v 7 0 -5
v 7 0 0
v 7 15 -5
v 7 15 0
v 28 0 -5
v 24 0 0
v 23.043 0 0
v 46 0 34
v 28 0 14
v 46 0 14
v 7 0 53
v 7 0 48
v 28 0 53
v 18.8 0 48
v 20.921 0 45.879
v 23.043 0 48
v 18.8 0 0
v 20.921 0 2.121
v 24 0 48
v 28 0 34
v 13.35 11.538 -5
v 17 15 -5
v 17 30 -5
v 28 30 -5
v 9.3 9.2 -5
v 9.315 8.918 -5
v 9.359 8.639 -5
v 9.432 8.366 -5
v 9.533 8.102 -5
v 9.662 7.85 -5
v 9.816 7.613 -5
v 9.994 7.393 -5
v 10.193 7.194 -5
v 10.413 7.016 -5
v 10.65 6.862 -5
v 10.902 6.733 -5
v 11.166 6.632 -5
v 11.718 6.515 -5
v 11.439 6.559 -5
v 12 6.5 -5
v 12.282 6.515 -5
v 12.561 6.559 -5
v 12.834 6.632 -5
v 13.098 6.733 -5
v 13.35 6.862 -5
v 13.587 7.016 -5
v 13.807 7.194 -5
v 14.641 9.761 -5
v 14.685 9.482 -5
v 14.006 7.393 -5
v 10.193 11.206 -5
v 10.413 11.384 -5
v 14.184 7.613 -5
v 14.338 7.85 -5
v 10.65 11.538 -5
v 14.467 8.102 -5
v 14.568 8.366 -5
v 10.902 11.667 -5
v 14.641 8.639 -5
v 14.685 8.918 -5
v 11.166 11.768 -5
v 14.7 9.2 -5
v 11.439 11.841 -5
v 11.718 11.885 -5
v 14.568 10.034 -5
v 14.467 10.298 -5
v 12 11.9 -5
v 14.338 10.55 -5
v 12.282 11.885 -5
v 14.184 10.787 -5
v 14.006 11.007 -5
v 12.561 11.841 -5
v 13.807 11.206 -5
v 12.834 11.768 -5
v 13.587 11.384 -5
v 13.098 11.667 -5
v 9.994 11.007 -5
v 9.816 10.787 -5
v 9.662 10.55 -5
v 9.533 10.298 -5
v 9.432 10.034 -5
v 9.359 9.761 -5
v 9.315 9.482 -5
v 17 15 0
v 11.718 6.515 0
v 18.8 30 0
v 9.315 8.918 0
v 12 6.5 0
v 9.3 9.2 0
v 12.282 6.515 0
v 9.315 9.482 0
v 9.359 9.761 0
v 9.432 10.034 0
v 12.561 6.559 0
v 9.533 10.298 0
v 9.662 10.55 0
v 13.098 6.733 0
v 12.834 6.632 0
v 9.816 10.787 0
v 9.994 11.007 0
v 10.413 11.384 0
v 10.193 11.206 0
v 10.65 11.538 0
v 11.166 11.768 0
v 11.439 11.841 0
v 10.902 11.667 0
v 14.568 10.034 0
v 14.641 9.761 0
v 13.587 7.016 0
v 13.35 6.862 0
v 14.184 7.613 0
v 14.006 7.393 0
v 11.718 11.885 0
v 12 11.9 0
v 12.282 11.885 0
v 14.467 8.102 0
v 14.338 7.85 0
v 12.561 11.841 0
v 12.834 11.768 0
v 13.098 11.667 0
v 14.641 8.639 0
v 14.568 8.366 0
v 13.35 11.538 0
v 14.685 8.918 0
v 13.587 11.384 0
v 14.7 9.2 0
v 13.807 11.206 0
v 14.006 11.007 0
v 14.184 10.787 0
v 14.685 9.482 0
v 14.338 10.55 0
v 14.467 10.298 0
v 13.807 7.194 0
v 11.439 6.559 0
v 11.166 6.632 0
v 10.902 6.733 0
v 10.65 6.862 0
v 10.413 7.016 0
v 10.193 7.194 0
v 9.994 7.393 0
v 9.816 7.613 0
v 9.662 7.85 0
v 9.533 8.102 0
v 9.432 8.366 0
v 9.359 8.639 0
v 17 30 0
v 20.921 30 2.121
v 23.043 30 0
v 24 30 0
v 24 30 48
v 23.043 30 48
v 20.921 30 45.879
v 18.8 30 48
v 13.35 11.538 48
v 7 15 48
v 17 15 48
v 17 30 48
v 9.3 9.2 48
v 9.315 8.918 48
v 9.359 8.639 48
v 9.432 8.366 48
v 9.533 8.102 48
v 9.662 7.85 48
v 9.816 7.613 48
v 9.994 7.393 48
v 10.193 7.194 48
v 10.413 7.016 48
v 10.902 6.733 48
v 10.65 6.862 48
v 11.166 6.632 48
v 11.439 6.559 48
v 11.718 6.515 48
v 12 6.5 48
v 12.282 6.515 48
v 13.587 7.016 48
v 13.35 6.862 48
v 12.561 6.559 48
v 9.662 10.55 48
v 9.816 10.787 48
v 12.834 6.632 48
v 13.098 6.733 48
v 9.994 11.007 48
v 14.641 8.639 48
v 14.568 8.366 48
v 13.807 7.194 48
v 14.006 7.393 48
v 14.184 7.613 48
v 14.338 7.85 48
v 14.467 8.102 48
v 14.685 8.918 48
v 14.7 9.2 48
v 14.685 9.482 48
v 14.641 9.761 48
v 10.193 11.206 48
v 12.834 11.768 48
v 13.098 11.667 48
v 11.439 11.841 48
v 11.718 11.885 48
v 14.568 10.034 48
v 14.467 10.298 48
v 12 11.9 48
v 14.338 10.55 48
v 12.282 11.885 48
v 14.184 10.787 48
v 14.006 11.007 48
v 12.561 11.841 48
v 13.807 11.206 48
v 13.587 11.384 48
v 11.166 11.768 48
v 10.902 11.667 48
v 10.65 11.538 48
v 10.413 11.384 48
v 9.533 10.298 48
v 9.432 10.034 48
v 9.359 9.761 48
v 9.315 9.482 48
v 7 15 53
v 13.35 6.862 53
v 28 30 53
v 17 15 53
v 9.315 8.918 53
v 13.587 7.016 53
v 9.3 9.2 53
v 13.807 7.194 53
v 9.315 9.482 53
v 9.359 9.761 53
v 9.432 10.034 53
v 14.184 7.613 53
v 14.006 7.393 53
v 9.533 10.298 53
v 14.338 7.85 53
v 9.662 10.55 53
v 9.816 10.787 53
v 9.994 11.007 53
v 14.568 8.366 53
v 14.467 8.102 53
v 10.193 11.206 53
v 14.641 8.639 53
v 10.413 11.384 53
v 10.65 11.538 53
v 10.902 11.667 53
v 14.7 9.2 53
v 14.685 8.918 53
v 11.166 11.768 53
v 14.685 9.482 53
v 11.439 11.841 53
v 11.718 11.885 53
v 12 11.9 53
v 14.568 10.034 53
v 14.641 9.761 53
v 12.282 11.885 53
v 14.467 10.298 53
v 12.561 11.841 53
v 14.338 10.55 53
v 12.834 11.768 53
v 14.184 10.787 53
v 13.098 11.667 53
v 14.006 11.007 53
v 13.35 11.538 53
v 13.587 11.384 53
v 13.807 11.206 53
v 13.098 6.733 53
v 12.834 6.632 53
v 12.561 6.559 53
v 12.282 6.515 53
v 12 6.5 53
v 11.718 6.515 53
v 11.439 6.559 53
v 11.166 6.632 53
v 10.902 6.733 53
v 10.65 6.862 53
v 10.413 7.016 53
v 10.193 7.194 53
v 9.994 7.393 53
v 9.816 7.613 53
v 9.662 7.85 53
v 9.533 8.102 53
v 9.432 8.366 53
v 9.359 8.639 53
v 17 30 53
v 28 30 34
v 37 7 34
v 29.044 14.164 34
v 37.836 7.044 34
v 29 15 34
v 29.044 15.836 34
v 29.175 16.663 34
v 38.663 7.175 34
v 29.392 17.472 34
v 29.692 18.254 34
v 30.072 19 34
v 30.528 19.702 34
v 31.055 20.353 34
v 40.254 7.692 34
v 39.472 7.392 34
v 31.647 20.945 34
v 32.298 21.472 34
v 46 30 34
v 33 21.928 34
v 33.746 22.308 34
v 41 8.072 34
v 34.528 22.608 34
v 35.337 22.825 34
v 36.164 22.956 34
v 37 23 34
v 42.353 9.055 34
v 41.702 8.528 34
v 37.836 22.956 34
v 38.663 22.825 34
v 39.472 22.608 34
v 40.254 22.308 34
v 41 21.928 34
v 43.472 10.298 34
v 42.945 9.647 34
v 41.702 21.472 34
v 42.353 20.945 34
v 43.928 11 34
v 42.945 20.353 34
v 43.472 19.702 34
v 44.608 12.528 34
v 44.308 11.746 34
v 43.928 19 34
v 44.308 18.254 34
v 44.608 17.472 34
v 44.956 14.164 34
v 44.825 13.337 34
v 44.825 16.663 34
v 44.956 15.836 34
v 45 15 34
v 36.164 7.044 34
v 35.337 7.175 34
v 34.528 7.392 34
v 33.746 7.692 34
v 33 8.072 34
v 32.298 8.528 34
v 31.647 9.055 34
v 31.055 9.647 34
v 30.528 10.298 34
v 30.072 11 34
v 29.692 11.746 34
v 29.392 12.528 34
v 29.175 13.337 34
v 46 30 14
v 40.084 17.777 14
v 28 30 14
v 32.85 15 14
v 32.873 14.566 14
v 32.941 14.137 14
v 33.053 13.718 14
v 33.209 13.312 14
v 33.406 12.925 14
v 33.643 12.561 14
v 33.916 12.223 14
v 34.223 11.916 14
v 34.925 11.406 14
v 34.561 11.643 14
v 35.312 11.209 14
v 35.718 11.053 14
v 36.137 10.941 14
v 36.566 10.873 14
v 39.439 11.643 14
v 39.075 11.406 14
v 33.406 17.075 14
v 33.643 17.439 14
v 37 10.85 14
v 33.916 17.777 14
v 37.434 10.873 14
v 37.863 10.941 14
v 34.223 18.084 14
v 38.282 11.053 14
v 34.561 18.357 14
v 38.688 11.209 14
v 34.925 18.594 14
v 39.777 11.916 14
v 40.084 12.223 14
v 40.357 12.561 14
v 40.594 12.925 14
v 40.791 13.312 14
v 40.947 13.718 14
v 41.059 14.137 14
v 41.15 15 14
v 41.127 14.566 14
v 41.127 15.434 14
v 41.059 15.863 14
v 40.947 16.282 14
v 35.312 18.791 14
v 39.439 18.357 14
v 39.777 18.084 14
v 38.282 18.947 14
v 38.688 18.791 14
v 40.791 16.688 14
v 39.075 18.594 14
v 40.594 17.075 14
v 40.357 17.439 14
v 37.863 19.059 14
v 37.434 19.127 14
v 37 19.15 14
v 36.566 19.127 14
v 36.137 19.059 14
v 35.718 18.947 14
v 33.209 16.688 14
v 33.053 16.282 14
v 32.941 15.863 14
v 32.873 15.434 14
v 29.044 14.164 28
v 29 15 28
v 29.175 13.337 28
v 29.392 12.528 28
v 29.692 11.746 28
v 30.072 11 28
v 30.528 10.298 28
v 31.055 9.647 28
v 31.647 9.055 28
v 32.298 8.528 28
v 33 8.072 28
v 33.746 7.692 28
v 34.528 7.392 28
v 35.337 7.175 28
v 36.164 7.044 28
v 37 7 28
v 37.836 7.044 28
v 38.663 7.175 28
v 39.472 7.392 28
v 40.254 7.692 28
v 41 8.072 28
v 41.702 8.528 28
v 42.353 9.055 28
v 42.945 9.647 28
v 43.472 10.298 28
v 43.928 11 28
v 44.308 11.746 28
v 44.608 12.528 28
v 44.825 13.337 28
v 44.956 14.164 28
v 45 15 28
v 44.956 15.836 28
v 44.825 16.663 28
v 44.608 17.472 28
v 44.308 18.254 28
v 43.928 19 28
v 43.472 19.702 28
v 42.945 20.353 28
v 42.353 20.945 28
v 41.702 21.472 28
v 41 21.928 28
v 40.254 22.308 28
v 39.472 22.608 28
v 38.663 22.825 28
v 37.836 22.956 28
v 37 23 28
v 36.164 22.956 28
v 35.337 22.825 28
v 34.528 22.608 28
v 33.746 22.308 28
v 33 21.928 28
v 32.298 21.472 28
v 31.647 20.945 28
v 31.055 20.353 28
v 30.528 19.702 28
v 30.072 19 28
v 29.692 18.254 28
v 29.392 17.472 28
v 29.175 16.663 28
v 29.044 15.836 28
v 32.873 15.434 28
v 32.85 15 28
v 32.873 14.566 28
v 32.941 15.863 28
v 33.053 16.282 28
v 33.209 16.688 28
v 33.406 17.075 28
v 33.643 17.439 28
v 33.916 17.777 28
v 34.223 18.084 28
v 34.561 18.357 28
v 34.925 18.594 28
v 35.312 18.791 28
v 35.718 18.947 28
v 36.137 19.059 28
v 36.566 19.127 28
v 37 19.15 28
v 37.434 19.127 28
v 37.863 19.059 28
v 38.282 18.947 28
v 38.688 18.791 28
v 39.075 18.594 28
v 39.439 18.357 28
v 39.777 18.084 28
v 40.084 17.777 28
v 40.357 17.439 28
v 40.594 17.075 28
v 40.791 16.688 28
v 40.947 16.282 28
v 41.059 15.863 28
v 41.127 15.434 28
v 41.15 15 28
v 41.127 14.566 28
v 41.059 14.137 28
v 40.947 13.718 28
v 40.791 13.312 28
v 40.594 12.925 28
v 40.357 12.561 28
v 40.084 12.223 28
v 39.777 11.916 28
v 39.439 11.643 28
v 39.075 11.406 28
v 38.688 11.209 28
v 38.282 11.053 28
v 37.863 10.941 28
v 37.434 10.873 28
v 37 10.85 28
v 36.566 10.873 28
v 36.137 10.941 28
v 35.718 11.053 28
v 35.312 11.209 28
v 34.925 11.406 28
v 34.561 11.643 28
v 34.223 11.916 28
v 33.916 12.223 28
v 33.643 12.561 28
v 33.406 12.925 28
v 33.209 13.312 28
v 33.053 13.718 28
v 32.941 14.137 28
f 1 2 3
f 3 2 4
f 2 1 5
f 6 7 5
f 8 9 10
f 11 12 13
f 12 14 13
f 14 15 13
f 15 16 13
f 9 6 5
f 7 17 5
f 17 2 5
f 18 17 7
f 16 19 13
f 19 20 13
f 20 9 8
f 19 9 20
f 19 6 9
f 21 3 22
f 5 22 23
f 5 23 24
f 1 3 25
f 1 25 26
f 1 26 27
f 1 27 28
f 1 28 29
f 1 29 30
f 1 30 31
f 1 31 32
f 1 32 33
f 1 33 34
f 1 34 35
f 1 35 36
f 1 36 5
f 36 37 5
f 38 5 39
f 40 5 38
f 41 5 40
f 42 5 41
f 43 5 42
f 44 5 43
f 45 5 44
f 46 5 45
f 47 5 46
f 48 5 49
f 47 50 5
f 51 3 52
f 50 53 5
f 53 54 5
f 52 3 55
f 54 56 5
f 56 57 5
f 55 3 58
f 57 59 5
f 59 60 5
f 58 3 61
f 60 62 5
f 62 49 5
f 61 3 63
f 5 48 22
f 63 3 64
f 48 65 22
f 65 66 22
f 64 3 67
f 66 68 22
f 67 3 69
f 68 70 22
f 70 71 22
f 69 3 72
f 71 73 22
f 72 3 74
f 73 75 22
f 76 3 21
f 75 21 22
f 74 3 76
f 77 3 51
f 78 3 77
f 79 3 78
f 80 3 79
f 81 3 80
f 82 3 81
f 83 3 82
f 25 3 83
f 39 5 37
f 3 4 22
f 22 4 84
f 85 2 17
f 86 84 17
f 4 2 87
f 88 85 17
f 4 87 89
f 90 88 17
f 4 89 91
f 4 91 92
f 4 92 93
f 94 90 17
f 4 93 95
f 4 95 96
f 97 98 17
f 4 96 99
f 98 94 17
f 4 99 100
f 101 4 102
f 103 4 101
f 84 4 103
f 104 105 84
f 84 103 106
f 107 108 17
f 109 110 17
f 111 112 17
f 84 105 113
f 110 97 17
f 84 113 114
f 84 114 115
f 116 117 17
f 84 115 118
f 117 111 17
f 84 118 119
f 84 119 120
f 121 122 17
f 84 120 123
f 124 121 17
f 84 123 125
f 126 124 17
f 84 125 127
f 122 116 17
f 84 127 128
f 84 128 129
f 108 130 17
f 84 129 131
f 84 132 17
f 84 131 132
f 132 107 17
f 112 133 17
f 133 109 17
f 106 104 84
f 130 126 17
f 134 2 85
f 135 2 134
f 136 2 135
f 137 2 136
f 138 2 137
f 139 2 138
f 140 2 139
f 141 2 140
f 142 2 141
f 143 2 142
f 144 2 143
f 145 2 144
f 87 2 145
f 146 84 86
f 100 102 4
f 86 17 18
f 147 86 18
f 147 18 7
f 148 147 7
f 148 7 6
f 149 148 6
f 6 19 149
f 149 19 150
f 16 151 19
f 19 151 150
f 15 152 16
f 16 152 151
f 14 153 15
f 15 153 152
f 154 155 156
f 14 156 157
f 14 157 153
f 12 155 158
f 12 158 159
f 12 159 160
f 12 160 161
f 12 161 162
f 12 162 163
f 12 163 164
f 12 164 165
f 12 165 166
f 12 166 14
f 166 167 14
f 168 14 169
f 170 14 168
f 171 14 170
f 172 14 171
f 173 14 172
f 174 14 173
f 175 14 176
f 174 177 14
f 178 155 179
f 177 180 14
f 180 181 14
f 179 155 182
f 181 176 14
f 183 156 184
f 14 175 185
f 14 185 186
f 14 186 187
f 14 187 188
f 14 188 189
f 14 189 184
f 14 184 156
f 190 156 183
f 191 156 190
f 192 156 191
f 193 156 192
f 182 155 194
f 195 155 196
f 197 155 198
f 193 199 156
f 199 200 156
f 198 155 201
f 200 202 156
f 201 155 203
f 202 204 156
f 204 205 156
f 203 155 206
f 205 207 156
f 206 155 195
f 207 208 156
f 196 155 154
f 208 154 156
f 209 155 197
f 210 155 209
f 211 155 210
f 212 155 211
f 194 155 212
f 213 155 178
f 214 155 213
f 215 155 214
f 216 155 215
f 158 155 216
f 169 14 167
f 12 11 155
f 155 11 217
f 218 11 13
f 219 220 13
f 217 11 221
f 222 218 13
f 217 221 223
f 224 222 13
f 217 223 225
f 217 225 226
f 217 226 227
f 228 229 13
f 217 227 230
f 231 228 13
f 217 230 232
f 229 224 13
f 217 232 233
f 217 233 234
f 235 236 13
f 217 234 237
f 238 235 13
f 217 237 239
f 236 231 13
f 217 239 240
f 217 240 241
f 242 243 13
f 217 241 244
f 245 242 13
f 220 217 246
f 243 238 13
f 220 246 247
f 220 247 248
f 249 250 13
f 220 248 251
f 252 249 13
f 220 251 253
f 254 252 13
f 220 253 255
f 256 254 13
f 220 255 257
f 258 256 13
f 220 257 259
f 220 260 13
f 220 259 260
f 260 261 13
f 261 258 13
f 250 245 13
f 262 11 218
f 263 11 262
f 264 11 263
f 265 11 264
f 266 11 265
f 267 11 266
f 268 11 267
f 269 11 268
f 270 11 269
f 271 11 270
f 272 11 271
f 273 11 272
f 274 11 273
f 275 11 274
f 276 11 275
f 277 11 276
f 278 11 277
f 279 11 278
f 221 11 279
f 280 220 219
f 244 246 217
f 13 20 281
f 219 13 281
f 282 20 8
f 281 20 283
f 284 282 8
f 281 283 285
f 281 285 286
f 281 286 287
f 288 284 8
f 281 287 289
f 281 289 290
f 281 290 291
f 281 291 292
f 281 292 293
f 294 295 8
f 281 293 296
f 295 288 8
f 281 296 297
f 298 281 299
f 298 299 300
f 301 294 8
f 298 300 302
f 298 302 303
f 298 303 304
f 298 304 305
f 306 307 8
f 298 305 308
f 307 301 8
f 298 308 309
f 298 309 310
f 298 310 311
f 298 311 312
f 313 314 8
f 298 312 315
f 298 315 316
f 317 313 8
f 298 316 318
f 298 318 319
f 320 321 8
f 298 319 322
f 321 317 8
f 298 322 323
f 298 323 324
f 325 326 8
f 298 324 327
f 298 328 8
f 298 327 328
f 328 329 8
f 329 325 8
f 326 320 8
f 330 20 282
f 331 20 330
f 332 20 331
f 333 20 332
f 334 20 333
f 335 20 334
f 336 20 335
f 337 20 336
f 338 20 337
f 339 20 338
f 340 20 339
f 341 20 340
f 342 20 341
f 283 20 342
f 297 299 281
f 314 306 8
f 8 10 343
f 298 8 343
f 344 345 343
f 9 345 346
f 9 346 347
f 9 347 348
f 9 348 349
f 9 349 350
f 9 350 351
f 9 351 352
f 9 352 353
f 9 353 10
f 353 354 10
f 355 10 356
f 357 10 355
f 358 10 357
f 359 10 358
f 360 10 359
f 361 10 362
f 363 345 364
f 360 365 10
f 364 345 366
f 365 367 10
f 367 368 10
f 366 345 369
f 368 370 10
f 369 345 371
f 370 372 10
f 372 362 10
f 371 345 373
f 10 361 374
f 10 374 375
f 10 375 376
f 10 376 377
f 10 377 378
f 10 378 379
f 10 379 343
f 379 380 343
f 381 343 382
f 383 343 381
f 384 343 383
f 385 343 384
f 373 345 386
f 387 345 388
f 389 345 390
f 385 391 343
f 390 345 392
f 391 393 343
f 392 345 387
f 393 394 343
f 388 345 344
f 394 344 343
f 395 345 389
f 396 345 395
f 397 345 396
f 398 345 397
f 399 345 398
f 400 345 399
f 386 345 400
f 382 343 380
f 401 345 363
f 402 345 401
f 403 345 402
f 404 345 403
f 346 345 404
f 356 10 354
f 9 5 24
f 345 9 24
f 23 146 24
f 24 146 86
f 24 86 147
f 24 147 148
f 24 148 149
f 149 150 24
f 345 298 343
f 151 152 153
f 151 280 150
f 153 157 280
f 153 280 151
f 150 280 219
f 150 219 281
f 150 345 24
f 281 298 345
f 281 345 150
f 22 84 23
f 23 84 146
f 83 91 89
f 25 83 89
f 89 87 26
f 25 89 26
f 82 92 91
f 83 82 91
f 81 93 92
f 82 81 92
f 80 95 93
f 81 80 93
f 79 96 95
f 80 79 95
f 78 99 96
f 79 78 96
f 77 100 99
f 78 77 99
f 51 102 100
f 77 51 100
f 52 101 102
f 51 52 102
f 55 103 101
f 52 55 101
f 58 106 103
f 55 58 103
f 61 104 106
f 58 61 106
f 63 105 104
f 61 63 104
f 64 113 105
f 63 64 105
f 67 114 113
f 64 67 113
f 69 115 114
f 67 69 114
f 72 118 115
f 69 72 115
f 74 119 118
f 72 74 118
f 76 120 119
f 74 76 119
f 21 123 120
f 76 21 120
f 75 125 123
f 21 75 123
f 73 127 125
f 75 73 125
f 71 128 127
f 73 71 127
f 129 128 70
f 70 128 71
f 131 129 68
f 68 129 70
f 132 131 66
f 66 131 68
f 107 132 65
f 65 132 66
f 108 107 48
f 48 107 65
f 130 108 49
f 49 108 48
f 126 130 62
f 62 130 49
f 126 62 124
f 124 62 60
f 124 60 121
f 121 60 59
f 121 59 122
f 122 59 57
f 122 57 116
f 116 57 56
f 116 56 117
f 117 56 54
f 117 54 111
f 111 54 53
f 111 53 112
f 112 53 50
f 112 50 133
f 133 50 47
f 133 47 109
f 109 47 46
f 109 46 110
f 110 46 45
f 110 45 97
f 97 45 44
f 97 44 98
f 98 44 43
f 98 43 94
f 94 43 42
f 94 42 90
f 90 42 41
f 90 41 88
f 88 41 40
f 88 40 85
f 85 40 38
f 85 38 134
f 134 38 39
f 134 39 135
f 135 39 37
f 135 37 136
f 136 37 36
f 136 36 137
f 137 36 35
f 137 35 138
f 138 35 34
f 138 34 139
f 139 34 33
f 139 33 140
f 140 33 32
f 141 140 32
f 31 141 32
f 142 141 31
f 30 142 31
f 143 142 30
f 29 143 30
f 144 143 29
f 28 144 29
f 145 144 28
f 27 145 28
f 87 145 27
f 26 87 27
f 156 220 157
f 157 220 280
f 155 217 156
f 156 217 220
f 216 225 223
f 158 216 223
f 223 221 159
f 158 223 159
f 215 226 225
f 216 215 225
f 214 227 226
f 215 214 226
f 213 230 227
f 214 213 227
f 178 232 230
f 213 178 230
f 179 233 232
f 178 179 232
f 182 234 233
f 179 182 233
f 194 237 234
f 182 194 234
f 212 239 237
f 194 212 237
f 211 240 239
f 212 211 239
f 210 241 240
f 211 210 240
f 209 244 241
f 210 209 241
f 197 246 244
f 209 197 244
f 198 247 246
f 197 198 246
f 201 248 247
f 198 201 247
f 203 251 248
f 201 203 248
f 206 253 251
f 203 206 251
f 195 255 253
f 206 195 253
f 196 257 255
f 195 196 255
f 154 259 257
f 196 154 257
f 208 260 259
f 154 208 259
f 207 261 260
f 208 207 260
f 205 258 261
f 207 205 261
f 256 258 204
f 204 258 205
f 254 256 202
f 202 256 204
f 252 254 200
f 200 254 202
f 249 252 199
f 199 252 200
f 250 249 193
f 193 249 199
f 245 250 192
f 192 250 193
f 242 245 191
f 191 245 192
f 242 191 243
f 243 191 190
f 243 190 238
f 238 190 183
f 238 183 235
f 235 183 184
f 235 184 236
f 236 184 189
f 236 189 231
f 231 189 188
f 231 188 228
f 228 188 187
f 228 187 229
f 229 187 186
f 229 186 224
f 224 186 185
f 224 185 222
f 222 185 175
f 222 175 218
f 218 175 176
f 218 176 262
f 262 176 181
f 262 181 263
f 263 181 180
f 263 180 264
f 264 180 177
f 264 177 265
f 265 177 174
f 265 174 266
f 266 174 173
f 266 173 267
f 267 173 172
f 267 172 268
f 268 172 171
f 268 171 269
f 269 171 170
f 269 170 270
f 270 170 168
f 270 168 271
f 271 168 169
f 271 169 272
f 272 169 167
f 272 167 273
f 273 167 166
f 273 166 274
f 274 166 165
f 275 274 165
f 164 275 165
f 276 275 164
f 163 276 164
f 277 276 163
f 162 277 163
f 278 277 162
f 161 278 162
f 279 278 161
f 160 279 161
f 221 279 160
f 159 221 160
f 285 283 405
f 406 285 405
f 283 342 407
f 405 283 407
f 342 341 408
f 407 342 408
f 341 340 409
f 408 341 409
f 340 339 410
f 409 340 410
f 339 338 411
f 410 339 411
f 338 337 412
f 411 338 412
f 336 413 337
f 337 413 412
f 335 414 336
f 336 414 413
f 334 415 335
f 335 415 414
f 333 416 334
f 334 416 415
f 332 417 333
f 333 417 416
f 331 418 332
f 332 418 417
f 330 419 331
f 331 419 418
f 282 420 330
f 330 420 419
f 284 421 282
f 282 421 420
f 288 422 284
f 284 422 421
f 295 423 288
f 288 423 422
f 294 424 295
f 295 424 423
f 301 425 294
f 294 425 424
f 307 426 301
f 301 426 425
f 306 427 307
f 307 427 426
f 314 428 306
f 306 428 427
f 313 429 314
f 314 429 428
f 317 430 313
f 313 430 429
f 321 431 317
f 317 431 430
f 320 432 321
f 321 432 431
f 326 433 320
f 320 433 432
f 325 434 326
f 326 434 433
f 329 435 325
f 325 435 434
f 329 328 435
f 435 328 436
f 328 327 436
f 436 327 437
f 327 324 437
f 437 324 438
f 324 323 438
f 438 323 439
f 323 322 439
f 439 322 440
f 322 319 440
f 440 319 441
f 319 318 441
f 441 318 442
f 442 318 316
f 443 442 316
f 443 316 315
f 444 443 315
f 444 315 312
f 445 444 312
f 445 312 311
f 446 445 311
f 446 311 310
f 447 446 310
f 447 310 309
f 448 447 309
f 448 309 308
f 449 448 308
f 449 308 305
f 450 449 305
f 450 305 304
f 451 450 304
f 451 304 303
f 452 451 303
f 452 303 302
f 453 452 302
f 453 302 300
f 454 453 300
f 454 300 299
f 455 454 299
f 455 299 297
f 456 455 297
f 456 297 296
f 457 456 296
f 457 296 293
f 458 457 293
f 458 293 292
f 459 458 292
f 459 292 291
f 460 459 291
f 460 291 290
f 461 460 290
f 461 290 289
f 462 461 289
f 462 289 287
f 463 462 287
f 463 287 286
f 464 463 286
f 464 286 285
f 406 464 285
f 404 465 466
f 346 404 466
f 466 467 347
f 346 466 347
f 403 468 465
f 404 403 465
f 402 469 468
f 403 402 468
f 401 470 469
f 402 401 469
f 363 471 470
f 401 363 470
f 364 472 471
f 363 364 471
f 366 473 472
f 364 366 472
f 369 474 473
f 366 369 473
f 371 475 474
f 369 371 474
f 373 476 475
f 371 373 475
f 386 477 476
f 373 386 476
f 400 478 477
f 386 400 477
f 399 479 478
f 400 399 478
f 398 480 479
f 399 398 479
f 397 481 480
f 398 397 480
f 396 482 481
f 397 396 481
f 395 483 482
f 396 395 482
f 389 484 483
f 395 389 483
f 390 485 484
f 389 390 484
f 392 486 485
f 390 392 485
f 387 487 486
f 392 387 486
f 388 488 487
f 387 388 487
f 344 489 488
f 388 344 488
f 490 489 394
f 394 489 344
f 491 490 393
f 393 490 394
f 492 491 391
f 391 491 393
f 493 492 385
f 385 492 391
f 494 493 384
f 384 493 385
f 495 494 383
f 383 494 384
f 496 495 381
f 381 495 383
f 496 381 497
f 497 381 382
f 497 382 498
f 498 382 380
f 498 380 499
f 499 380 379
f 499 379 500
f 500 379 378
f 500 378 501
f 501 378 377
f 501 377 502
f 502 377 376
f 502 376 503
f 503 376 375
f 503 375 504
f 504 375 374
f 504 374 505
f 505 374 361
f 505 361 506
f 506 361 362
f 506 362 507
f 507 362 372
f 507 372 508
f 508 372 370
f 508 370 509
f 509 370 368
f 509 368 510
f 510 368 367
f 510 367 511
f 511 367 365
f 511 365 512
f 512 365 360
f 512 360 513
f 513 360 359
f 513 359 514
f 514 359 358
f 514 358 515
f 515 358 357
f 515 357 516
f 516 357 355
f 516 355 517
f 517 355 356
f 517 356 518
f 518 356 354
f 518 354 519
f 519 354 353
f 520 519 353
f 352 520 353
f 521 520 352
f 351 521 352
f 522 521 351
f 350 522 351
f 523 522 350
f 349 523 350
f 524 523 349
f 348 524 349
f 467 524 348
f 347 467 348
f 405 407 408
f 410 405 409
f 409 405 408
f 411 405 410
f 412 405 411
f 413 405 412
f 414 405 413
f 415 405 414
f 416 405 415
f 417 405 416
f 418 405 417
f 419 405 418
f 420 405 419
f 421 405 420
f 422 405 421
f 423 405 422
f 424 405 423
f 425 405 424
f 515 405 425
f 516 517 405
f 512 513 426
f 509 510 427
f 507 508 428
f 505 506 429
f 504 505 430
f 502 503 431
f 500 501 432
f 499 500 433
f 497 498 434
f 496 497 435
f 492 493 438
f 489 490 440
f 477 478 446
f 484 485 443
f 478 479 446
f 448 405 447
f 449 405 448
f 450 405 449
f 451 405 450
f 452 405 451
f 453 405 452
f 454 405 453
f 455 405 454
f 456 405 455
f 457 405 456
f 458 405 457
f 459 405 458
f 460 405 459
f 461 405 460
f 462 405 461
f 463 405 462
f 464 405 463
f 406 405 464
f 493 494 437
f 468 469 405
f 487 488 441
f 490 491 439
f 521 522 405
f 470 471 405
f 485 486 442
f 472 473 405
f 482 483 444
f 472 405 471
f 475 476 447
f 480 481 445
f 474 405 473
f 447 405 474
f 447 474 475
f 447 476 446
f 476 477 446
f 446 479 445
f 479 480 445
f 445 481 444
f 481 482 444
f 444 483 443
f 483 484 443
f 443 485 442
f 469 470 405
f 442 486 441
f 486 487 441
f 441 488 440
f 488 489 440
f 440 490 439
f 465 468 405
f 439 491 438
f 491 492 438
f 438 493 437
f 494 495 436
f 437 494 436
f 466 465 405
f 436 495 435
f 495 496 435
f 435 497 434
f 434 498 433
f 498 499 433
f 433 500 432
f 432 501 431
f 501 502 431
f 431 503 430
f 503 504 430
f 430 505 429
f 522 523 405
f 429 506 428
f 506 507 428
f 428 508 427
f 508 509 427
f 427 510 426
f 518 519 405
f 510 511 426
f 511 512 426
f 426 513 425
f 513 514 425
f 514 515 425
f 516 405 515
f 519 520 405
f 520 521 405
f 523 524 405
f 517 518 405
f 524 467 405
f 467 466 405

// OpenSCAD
x = 24;		// Height body
y = 30;		// Height body
z = 48;		// Height body
s1x = 5;	// Height body
s1z = 9;	// Height body

s2z = 12;

r1 = 4.15;	// Radio varilla lisa
r2 = 2.3;	// Radio tornillo M3
r3 = 11.2;	// Radio centro motor
r4 = 3;		// Radio tornillo M5
r5 = 7.6;	// Radio rodamiento lineal
r6 = 4.62;	// Radio tuerca M5
h6 = 4;		// Altura tuerca M5
r7 = 2.3;	// Radio poleas
r8 = 3.7;	// Radio cabeza tornillo M3
r9 = 6.1;	// Radio casquillo bronze
rM4 = 2.7;	// Radio tornillo M4
rTM5 = 4.62;	// Radio tuerca M5
hTM5 = 4;		// Altura tuerca M5
rTM4 = 4;	// Radio tuerca M4
hTM4 = 3.3;		// Altura tuerca M4
rTM3 = 3.3;	// Radio tuerca M3
hTM3 = 2.3;		// Altura tuerca M3

L1 = 3;		// Tamaño guia fijacion bloques hotend

module hotend_block_corexy()
{
	difference() {
		union() {
			// Guias fijacion bloques hotend
			translate([(x-5.2), 0, 0]) rotate([0, 45, 0]) cube([L1, y, L1]);
			translate([(x-5.2), 0, z]) rotate([0, 45, 0]) cube([L1, y, L1]);

			translate([(x-7), 0, z]) cube([11, y, 5]);
			translate([(x-7), 0, -5]) cube([11, y, 5]);
			translate([7, 0, z]) cube([(x - 14), (y/2), 5]);
			translate([7, 0, -5]) cube([(x - 14), (y/2), 5]);
			translate([x, 0, 0]) cube([4, y, z]);

			translate([(x+4), 0, ((z/2) - 10)]) cube([18, y, 20]);			
		
		}
		// Tornillos M4 fijacion bloques hotend
		translate([(x/2), ((y/2) - 5.8), z]) cylinder(h = 5, r = rM4, $fn=60);
		translate([(x/2), ((y/2) - 5.8), -5]) cylinder(h = 5, r = rM4, $fn=60);
		
		translate([(x + 13), (y/2), ((z/2) - 10)]) cylinder(h = 20, r = r1, $fn=60);
		translate([(x + 13), (y/2), ((z/2) + 4)]) cylinder(h = 8, r = 8, $fn=60);
	}
}

hotend_block_corexy();
